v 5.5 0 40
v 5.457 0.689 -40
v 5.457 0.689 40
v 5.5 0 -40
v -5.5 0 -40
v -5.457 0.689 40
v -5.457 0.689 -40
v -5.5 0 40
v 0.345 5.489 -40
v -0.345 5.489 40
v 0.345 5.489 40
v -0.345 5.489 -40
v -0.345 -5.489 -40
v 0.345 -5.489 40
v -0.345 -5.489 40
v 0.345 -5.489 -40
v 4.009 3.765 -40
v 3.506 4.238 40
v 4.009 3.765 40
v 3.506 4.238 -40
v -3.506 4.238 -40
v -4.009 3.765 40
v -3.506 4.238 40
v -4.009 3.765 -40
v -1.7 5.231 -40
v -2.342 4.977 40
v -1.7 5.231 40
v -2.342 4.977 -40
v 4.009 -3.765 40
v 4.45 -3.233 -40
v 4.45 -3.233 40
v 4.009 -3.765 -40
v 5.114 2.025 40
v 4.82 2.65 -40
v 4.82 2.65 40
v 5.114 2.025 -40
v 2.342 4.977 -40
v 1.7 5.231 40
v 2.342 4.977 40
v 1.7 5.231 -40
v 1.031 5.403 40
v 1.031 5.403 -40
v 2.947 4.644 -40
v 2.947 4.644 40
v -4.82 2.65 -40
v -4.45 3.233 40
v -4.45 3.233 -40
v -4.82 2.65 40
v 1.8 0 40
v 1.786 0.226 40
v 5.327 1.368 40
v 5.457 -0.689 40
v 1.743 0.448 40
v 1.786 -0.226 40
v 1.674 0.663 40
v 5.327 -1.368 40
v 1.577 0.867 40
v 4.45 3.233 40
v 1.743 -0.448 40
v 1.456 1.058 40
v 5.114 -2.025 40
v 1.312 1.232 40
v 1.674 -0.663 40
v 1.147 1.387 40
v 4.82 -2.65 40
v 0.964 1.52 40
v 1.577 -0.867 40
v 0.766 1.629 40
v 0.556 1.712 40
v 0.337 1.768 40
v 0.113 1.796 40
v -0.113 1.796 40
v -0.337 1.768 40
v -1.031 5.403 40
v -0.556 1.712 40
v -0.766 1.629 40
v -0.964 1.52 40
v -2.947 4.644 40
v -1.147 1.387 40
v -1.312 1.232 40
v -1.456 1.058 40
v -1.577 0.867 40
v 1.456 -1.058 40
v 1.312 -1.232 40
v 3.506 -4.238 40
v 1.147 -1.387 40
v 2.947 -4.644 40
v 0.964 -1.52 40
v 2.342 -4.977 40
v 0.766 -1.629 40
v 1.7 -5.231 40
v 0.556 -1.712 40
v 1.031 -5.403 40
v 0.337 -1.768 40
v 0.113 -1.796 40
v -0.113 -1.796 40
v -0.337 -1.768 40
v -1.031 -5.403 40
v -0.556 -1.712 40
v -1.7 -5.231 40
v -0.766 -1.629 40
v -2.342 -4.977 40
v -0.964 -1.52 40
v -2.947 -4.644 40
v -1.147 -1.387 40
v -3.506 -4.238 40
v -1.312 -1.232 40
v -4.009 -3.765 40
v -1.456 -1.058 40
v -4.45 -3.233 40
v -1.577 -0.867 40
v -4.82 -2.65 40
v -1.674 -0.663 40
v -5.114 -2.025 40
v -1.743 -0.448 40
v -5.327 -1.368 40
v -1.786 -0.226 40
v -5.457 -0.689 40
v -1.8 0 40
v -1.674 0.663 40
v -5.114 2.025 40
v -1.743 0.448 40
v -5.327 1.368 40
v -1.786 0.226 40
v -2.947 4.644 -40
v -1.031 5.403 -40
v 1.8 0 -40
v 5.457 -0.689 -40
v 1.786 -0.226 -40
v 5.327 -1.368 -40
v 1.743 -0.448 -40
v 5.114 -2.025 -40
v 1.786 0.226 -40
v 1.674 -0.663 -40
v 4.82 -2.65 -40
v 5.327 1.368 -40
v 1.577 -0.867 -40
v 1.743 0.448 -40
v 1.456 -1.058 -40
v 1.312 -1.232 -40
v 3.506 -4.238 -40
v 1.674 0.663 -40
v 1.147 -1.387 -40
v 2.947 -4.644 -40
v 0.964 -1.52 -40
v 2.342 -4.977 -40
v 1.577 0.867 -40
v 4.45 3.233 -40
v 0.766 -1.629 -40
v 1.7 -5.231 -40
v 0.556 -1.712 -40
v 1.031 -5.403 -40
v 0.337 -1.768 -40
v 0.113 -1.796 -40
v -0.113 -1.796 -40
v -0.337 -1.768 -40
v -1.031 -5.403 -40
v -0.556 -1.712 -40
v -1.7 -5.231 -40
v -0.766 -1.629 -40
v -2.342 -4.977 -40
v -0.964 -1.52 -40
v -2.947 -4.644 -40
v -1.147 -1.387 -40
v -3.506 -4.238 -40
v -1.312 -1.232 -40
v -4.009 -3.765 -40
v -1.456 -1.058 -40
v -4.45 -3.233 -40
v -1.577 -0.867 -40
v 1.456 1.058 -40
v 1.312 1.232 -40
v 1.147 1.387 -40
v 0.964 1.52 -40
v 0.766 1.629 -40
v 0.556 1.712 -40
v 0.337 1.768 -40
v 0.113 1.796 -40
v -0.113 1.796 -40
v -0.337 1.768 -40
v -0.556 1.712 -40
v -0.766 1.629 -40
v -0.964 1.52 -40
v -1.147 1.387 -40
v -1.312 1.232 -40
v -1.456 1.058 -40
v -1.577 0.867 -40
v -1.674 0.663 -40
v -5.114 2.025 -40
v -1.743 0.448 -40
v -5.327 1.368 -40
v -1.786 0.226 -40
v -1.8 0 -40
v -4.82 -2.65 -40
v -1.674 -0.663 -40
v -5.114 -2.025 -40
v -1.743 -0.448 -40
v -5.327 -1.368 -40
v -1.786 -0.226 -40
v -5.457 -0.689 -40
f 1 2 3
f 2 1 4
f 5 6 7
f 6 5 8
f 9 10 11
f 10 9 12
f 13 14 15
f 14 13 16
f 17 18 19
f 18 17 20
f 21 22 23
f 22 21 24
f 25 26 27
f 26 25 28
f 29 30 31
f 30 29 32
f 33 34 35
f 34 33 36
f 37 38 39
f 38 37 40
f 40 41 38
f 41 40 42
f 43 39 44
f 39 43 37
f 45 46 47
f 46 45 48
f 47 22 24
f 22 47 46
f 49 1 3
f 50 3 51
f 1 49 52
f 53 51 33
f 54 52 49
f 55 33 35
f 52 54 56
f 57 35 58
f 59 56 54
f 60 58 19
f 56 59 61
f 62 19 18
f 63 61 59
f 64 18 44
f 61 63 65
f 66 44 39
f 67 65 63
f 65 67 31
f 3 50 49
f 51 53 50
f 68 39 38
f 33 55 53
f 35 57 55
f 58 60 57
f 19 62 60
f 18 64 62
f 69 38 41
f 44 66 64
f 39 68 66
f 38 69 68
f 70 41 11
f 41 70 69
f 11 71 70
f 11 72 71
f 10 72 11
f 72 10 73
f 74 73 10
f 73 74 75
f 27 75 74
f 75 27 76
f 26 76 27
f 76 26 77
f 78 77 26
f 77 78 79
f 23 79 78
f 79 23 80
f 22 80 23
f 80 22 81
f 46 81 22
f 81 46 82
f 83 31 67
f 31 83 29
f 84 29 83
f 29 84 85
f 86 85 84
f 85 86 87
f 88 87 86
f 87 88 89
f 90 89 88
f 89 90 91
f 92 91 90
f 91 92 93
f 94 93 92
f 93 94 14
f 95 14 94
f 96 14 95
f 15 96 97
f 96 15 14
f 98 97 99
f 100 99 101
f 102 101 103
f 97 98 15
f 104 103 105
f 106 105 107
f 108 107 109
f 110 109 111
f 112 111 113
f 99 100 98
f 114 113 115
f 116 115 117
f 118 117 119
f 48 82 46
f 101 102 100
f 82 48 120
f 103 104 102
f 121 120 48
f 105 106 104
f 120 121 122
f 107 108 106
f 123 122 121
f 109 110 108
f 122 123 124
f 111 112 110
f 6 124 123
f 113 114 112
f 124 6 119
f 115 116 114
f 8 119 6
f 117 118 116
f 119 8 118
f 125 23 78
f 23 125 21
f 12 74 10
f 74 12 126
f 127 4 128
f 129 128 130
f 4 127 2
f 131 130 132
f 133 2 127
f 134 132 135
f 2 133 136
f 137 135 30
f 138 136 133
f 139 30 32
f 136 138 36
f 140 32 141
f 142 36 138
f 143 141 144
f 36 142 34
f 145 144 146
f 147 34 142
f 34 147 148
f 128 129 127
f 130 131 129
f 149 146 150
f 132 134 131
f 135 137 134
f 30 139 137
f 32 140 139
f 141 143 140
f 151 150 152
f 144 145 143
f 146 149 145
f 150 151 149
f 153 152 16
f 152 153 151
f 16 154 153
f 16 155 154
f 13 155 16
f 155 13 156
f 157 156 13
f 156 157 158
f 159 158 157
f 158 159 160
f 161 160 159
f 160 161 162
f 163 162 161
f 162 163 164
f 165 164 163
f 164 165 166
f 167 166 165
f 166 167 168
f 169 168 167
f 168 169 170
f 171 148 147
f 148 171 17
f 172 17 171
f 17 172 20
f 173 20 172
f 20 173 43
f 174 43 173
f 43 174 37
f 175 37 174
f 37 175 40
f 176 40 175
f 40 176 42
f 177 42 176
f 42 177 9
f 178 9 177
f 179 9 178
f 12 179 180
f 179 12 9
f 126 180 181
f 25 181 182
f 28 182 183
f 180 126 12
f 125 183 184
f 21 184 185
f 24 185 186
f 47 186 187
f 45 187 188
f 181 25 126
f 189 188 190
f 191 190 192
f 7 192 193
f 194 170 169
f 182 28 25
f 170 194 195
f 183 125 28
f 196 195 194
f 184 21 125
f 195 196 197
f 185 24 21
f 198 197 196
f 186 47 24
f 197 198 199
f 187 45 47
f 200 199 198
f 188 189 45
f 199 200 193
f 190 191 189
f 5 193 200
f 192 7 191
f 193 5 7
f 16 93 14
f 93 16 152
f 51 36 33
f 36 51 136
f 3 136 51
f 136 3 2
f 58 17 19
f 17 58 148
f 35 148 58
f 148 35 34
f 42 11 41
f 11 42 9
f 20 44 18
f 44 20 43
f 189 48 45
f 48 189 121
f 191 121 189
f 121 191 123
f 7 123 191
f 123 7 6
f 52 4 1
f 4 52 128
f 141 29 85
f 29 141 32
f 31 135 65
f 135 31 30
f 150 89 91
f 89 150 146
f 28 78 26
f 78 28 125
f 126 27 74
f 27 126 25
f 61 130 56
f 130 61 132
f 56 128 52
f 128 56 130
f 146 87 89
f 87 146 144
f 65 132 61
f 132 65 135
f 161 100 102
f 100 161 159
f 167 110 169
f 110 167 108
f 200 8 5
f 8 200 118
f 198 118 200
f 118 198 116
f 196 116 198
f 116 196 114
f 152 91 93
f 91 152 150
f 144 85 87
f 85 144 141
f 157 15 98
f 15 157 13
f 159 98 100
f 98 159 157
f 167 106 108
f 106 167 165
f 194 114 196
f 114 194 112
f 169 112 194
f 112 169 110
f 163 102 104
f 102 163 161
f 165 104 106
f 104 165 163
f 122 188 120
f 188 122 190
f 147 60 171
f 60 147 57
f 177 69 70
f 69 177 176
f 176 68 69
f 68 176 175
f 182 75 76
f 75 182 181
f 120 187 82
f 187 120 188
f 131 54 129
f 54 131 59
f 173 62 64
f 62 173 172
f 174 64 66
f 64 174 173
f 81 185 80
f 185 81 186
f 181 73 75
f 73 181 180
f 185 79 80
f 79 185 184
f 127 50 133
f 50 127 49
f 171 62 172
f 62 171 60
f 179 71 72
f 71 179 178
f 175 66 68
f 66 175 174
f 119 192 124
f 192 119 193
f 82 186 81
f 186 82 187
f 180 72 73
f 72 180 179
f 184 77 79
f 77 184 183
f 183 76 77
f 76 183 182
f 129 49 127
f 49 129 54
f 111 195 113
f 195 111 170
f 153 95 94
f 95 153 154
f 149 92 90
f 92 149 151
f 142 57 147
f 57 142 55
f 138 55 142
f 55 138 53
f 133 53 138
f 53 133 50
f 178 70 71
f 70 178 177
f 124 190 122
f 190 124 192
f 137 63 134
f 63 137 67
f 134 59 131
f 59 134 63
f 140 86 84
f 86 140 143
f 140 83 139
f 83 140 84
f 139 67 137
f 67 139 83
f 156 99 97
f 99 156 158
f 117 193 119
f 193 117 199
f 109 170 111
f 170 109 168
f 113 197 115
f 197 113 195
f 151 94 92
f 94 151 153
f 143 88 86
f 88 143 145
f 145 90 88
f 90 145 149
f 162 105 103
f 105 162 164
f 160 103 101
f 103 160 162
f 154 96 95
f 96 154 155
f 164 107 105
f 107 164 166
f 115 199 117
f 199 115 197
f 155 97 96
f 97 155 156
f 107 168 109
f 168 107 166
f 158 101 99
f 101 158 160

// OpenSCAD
$fn = 50;


difference() {
	union() {
		translate(v = [0, 0, -40.0000000000]) {
			cylinder(h = 80, r = 5.5000000000);
		}
	}
	union() {
		translate(v = [0, 0, -100.0000000000]) {
			cylinder(h = 200, r = 1.8000000000);
		}
	}
}
